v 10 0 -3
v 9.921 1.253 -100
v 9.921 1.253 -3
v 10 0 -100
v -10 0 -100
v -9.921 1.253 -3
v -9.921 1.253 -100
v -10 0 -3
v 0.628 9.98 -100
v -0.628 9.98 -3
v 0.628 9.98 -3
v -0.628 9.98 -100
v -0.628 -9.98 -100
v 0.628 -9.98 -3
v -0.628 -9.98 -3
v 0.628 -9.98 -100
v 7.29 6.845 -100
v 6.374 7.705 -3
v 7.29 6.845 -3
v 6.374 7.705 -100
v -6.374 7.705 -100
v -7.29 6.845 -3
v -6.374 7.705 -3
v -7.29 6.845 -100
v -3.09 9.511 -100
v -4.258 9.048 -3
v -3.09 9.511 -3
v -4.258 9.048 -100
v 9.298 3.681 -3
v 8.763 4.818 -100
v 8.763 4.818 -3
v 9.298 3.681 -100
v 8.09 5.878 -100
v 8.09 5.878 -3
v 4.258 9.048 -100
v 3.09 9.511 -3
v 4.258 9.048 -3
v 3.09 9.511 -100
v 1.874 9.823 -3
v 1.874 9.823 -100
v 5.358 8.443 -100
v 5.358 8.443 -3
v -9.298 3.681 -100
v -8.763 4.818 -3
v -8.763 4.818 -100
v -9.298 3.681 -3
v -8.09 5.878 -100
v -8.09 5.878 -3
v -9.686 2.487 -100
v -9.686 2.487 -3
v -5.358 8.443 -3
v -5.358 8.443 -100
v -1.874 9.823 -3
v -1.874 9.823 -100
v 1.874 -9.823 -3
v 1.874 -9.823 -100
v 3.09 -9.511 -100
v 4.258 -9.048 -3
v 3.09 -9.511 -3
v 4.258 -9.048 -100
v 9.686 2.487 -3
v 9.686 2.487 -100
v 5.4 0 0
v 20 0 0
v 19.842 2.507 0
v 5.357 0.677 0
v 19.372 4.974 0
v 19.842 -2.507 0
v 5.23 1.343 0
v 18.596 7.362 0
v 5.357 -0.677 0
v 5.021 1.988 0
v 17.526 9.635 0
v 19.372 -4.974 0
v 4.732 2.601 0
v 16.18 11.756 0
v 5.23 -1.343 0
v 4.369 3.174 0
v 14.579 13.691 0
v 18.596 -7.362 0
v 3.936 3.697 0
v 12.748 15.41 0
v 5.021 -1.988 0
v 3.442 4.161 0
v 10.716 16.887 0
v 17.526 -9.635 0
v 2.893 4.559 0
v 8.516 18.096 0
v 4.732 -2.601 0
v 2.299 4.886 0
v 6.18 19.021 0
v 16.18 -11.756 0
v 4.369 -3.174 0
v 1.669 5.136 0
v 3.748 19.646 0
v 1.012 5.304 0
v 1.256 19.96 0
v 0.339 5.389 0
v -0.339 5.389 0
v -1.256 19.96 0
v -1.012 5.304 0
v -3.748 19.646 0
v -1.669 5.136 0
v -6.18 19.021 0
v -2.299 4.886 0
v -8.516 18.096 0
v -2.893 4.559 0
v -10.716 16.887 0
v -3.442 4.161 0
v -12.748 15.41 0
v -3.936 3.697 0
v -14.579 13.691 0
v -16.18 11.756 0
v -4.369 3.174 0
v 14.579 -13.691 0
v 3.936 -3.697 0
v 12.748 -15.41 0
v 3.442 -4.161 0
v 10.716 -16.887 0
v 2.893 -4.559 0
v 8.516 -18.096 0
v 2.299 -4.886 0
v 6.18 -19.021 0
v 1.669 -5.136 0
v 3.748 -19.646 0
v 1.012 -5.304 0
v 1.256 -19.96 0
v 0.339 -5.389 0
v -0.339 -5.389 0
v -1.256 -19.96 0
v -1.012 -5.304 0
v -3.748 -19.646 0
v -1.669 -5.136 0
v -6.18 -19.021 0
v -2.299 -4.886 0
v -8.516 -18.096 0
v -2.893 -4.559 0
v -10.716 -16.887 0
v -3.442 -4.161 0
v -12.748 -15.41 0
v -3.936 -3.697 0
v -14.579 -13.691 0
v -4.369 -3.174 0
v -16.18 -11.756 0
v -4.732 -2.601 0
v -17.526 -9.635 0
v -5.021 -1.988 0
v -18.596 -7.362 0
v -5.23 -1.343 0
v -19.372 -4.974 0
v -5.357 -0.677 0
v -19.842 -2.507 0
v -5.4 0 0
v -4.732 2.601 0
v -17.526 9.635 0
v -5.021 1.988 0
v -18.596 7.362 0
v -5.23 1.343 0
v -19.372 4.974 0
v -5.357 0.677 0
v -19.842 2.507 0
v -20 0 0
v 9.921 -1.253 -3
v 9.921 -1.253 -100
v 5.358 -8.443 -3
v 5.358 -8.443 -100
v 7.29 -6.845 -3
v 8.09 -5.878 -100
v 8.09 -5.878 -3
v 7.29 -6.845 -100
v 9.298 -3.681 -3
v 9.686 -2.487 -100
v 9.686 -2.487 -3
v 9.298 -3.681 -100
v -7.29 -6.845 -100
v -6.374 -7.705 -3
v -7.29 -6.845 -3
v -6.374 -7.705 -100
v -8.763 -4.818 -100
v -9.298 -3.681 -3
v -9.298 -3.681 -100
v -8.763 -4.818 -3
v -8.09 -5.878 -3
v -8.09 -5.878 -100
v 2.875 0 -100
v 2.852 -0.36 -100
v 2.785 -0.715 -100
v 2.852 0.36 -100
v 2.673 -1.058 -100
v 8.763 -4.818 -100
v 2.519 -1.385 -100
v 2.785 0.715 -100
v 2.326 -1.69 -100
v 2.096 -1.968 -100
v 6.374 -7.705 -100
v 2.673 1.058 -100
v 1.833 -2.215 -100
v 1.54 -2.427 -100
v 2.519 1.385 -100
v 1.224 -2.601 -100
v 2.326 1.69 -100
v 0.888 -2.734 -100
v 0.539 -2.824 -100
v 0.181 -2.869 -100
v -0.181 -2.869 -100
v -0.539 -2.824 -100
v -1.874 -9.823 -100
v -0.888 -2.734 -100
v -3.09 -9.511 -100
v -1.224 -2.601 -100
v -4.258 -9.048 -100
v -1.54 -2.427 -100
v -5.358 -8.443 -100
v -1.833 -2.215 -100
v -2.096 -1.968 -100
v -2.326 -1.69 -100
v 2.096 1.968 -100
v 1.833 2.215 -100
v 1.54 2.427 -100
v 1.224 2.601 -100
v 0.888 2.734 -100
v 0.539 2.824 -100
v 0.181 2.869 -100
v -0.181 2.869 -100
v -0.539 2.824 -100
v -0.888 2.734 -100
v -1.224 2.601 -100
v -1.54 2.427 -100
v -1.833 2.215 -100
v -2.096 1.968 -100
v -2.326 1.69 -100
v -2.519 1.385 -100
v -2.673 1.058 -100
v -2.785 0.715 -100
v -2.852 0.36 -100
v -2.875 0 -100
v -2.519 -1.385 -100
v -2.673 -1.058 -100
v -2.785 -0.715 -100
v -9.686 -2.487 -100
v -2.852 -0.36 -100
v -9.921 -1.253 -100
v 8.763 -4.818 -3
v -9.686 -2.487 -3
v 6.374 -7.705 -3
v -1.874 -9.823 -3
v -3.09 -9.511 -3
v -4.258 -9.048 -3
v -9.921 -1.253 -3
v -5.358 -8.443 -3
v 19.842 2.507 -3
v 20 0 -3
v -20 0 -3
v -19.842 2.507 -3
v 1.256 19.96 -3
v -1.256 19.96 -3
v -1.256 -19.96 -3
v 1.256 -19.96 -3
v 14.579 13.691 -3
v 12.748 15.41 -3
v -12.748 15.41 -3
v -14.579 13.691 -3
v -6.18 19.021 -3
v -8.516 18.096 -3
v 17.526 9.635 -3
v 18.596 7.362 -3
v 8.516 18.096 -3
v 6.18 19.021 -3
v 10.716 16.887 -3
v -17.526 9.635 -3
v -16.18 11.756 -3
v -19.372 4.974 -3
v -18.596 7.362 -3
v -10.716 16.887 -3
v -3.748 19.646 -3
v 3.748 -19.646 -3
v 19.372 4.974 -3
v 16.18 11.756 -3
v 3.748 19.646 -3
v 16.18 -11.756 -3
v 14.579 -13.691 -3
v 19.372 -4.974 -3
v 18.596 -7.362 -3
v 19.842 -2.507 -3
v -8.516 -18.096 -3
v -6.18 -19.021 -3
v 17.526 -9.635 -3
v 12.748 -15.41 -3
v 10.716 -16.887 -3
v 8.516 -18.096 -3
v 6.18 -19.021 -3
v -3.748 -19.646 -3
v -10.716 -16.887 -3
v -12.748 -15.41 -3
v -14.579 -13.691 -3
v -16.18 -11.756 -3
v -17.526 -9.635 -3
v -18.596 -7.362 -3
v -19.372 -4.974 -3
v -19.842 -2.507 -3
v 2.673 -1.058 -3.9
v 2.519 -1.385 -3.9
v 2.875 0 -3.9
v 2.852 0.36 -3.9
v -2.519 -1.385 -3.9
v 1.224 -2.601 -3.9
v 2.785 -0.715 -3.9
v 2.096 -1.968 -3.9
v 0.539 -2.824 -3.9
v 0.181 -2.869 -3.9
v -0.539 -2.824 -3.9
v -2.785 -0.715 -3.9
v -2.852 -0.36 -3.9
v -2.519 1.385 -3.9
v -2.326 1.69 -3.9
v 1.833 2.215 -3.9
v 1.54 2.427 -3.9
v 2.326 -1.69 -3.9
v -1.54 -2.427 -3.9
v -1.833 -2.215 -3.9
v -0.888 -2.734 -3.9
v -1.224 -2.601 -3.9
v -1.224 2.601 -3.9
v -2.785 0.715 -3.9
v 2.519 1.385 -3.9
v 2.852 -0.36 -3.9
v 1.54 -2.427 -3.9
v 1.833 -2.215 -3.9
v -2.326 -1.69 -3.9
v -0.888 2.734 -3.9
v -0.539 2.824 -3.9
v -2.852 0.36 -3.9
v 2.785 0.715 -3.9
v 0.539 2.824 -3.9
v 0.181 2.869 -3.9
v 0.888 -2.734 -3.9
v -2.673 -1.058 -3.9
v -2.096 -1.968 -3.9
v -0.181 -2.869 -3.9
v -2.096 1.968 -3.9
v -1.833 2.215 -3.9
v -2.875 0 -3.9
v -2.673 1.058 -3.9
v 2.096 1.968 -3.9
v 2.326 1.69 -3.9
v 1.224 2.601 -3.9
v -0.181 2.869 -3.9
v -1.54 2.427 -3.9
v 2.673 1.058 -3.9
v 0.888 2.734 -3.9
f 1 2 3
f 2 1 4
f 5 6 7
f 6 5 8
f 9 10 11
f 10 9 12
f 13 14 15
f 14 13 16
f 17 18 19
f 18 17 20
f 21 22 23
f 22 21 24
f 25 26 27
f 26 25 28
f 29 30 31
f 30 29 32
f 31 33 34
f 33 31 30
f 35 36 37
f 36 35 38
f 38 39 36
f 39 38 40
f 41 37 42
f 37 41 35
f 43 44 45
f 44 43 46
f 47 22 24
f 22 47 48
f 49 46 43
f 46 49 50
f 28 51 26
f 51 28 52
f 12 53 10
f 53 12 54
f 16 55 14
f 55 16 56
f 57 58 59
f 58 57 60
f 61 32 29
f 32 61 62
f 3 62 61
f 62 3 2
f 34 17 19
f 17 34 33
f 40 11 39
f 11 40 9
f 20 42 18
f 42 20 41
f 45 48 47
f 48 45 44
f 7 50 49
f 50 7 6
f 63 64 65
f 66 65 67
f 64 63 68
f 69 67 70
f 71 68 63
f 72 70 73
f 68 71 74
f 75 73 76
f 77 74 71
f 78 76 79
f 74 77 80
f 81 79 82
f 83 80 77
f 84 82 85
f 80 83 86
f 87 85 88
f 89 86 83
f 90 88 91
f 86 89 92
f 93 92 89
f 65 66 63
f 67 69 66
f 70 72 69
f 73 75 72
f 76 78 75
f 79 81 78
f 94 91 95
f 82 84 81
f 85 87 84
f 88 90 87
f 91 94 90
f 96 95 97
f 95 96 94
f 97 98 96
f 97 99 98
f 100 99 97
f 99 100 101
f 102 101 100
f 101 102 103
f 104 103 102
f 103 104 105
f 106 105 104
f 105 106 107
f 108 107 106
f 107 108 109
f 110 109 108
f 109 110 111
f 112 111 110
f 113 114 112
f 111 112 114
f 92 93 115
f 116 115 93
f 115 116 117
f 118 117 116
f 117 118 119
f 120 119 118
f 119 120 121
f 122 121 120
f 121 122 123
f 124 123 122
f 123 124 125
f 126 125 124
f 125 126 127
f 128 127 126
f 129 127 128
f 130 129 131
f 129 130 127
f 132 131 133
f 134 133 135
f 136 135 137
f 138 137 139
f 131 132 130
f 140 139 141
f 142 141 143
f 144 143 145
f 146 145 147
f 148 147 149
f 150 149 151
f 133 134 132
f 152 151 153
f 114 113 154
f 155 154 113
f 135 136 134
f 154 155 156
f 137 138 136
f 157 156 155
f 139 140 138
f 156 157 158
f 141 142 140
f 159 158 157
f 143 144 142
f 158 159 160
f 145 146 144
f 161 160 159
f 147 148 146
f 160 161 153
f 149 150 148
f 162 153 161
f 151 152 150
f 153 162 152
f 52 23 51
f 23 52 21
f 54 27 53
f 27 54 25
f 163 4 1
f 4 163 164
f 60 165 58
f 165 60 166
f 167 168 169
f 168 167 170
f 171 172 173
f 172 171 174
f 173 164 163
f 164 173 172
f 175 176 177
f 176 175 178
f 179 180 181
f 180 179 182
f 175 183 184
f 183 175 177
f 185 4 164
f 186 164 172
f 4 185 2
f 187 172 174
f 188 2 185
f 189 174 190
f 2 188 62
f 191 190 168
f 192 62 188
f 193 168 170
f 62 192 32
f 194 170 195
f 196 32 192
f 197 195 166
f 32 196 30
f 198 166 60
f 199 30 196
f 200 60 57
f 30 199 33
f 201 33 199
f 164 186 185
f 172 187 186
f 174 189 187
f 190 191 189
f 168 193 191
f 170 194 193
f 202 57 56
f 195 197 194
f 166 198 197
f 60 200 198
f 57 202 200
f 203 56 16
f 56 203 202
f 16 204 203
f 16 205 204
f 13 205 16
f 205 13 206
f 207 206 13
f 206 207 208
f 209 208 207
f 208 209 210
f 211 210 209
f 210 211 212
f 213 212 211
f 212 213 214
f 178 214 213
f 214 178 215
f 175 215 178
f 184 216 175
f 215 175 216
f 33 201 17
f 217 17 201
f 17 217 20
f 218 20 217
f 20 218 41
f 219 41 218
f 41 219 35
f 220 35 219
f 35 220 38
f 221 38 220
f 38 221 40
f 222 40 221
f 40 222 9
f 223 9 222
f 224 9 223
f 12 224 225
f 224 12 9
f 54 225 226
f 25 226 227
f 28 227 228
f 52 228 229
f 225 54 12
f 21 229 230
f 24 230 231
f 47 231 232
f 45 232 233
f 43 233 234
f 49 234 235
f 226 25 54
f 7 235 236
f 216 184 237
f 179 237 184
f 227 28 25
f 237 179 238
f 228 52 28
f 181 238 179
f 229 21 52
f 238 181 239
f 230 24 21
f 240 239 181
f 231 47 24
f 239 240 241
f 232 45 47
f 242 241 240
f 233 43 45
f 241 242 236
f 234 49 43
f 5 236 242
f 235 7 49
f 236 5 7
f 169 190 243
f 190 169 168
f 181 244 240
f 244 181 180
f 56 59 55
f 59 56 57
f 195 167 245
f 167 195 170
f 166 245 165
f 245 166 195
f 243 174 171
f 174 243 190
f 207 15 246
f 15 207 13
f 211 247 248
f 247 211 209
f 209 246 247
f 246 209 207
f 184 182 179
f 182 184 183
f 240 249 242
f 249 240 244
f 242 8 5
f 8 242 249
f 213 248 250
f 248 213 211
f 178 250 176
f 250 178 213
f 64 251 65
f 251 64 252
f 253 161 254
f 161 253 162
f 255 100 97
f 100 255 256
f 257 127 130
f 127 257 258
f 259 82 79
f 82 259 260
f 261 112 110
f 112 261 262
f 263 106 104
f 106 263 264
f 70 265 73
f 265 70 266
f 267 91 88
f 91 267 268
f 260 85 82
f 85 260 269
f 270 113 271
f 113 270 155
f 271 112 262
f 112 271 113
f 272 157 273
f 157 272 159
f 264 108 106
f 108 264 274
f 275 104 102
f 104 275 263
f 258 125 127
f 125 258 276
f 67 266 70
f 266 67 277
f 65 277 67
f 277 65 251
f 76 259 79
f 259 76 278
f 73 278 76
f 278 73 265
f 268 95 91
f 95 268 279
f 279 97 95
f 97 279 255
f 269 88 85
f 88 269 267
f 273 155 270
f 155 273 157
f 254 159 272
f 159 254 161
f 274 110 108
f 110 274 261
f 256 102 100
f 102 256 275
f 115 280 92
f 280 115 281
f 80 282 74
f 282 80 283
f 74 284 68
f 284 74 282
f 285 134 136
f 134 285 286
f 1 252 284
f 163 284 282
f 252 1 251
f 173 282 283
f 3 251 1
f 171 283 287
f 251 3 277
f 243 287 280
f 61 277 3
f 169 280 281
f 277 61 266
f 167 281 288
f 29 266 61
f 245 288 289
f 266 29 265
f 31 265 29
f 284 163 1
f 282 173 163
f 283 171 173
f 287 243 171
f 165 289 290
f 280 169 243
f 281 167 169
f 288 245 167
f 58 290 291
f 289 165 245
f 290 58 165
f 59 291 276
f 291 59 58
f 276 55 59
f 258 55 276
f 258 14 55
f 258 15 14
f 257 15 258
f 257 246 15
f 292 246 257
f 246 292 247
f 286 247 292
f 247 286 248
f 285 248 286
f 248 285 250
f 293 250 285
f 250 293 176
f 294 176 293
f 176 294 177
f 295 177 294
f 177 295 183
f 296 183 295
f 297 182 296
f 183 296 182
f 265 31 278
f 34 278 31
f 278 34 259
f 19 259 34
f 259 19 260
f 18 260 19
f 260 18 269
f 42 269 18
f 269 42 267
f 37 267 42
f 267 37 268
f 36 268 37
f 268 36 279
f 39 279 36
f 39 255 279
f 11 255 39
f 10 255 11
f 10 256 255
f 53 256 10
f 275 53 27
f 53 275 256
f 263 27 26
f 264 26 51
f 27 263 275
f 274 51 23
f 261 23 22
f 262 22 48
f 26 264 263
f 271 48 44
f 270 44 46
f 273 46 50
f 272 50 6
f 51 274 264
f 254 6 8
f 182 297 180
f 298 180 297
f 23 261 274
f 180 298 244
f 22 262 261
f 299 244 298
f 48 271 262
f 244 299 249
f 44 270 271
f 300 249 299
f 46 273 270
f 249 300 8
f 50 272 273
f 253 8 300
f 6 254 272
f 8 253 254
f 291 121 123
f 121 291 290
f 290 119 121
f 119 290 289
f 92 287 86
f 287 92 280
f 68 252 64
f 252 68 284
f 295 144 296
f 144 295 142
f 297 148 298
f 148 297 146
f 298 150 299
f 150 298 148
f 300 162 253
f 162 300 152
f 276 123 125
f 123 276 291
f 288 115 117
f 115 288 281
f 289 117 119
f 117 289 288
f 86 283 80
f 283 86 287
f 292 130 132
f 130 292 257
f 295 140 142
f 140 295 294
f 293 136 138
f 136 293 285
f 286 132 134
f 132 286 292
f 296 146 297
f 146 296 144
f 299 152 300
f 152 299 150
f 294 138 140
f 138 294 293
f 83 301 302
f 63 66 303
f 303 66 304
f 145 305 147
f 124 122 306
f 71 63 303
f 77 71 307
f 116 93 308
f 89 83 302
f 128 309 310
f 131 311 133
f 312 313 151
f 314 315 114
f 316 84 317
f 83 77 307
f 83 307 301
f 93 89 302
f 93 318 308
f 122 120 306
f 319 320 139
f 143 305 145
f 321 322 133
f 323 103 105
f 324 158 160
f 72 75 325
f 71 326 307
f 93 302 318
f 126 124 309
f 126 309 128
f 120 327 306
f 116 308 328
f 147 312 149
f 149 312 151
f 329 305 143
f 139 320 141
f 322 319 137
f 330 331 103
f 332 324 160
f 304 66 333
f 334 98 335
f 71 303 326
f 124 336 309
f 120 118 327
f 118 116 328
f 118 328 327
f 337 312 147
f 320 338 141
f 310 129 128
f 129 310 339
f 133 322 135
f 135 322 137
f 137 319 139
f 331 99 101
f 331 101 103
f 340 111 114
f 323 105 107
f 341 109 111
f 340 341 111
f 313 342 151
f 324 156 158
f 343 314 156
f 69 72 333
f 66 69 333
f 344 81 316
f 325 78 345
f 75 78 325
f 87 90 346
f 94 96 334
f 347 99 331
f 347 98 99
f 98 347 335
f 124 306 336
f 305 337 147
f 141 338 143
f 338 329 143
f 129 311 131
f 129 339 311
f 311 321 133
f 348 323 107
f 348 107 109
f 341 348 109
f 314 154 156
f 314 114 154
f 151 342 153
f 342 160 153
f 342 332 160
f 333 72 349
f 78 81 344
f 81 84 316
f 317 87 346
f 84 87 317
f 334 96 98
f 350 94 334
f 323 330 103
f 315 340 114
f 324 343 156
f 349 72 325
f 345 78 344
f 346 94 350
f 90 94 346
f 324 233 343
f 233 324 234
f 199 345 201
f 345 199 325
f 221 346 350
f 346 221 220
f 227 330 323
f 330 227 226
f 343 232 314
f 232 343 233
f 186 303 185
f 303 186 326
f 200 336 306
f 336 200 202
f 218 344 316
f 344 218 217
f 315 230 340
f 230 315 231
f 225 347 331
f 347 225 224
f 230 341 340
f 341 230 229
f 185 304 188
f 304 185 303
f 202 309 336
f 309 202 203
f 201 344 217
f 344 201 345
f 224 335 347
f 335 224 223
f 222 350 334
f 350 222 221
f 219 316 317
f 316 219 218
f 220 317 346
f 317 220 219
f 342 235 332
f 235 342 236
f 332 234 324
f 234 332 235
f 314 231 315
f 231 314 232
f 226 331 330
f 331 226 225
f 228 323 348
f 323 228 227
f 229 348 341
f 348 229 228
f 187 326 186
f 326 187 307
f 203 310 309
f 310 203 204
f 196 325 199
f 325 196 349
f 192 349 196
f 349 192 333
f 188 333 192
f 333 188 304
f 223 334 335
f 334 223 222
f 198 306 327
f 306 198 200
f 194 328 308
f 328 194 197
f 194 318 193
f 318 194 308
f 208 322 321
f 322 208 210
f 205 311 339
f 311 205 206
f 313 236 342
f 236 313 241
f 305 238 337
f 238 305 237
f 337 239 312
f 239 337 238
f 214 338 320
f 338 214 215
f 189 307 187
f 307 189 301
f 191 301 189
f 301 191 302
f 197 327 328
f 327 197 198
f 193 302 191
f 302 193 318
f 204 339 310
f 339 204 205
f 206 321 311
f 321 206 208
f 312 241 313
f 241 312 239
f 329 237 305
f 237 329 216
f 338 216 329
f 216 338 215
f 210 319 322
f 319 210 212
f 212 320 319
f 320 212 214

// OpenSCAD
$fn = 50;


difference() {
	union() {
		translate(v = [0, 0, -100.0000000000]) {
			cylinder(h = 100, r = 10.0000000000);
		}
		translate(v = [0, 0, -3.0000000000]) {
			cylinder(h = 3, r = 20.0000000000);
		}
	}
	union() {
		translate(v = [0, 0, 0]) {
			rotate(a = [0, 0, 0]) {
				difference() {
					union() {
						#translate(v = [0, 0, -100.0000000000]) {
							cylinder(h = 100, r = 2.6000000000);
						}
						#translate(v = [0, 0, -3.9000000000]) {
							cylinder(h = 3.9000000000, r = 10.0000000000, r1 = 2.8750000000, r2 = 5.4000000000);
						}
						#translate(v = [0, 0, -100.0000000000]) {
							cylinder(h = 100, r = 2.8750000000);
						}
						#translate(v = [0, 0, -100.0000000000]) {
							cylinder(h = 100, r = 2.6000000000);
						}
					}
					union();
				}
			}
		}
	}
}
